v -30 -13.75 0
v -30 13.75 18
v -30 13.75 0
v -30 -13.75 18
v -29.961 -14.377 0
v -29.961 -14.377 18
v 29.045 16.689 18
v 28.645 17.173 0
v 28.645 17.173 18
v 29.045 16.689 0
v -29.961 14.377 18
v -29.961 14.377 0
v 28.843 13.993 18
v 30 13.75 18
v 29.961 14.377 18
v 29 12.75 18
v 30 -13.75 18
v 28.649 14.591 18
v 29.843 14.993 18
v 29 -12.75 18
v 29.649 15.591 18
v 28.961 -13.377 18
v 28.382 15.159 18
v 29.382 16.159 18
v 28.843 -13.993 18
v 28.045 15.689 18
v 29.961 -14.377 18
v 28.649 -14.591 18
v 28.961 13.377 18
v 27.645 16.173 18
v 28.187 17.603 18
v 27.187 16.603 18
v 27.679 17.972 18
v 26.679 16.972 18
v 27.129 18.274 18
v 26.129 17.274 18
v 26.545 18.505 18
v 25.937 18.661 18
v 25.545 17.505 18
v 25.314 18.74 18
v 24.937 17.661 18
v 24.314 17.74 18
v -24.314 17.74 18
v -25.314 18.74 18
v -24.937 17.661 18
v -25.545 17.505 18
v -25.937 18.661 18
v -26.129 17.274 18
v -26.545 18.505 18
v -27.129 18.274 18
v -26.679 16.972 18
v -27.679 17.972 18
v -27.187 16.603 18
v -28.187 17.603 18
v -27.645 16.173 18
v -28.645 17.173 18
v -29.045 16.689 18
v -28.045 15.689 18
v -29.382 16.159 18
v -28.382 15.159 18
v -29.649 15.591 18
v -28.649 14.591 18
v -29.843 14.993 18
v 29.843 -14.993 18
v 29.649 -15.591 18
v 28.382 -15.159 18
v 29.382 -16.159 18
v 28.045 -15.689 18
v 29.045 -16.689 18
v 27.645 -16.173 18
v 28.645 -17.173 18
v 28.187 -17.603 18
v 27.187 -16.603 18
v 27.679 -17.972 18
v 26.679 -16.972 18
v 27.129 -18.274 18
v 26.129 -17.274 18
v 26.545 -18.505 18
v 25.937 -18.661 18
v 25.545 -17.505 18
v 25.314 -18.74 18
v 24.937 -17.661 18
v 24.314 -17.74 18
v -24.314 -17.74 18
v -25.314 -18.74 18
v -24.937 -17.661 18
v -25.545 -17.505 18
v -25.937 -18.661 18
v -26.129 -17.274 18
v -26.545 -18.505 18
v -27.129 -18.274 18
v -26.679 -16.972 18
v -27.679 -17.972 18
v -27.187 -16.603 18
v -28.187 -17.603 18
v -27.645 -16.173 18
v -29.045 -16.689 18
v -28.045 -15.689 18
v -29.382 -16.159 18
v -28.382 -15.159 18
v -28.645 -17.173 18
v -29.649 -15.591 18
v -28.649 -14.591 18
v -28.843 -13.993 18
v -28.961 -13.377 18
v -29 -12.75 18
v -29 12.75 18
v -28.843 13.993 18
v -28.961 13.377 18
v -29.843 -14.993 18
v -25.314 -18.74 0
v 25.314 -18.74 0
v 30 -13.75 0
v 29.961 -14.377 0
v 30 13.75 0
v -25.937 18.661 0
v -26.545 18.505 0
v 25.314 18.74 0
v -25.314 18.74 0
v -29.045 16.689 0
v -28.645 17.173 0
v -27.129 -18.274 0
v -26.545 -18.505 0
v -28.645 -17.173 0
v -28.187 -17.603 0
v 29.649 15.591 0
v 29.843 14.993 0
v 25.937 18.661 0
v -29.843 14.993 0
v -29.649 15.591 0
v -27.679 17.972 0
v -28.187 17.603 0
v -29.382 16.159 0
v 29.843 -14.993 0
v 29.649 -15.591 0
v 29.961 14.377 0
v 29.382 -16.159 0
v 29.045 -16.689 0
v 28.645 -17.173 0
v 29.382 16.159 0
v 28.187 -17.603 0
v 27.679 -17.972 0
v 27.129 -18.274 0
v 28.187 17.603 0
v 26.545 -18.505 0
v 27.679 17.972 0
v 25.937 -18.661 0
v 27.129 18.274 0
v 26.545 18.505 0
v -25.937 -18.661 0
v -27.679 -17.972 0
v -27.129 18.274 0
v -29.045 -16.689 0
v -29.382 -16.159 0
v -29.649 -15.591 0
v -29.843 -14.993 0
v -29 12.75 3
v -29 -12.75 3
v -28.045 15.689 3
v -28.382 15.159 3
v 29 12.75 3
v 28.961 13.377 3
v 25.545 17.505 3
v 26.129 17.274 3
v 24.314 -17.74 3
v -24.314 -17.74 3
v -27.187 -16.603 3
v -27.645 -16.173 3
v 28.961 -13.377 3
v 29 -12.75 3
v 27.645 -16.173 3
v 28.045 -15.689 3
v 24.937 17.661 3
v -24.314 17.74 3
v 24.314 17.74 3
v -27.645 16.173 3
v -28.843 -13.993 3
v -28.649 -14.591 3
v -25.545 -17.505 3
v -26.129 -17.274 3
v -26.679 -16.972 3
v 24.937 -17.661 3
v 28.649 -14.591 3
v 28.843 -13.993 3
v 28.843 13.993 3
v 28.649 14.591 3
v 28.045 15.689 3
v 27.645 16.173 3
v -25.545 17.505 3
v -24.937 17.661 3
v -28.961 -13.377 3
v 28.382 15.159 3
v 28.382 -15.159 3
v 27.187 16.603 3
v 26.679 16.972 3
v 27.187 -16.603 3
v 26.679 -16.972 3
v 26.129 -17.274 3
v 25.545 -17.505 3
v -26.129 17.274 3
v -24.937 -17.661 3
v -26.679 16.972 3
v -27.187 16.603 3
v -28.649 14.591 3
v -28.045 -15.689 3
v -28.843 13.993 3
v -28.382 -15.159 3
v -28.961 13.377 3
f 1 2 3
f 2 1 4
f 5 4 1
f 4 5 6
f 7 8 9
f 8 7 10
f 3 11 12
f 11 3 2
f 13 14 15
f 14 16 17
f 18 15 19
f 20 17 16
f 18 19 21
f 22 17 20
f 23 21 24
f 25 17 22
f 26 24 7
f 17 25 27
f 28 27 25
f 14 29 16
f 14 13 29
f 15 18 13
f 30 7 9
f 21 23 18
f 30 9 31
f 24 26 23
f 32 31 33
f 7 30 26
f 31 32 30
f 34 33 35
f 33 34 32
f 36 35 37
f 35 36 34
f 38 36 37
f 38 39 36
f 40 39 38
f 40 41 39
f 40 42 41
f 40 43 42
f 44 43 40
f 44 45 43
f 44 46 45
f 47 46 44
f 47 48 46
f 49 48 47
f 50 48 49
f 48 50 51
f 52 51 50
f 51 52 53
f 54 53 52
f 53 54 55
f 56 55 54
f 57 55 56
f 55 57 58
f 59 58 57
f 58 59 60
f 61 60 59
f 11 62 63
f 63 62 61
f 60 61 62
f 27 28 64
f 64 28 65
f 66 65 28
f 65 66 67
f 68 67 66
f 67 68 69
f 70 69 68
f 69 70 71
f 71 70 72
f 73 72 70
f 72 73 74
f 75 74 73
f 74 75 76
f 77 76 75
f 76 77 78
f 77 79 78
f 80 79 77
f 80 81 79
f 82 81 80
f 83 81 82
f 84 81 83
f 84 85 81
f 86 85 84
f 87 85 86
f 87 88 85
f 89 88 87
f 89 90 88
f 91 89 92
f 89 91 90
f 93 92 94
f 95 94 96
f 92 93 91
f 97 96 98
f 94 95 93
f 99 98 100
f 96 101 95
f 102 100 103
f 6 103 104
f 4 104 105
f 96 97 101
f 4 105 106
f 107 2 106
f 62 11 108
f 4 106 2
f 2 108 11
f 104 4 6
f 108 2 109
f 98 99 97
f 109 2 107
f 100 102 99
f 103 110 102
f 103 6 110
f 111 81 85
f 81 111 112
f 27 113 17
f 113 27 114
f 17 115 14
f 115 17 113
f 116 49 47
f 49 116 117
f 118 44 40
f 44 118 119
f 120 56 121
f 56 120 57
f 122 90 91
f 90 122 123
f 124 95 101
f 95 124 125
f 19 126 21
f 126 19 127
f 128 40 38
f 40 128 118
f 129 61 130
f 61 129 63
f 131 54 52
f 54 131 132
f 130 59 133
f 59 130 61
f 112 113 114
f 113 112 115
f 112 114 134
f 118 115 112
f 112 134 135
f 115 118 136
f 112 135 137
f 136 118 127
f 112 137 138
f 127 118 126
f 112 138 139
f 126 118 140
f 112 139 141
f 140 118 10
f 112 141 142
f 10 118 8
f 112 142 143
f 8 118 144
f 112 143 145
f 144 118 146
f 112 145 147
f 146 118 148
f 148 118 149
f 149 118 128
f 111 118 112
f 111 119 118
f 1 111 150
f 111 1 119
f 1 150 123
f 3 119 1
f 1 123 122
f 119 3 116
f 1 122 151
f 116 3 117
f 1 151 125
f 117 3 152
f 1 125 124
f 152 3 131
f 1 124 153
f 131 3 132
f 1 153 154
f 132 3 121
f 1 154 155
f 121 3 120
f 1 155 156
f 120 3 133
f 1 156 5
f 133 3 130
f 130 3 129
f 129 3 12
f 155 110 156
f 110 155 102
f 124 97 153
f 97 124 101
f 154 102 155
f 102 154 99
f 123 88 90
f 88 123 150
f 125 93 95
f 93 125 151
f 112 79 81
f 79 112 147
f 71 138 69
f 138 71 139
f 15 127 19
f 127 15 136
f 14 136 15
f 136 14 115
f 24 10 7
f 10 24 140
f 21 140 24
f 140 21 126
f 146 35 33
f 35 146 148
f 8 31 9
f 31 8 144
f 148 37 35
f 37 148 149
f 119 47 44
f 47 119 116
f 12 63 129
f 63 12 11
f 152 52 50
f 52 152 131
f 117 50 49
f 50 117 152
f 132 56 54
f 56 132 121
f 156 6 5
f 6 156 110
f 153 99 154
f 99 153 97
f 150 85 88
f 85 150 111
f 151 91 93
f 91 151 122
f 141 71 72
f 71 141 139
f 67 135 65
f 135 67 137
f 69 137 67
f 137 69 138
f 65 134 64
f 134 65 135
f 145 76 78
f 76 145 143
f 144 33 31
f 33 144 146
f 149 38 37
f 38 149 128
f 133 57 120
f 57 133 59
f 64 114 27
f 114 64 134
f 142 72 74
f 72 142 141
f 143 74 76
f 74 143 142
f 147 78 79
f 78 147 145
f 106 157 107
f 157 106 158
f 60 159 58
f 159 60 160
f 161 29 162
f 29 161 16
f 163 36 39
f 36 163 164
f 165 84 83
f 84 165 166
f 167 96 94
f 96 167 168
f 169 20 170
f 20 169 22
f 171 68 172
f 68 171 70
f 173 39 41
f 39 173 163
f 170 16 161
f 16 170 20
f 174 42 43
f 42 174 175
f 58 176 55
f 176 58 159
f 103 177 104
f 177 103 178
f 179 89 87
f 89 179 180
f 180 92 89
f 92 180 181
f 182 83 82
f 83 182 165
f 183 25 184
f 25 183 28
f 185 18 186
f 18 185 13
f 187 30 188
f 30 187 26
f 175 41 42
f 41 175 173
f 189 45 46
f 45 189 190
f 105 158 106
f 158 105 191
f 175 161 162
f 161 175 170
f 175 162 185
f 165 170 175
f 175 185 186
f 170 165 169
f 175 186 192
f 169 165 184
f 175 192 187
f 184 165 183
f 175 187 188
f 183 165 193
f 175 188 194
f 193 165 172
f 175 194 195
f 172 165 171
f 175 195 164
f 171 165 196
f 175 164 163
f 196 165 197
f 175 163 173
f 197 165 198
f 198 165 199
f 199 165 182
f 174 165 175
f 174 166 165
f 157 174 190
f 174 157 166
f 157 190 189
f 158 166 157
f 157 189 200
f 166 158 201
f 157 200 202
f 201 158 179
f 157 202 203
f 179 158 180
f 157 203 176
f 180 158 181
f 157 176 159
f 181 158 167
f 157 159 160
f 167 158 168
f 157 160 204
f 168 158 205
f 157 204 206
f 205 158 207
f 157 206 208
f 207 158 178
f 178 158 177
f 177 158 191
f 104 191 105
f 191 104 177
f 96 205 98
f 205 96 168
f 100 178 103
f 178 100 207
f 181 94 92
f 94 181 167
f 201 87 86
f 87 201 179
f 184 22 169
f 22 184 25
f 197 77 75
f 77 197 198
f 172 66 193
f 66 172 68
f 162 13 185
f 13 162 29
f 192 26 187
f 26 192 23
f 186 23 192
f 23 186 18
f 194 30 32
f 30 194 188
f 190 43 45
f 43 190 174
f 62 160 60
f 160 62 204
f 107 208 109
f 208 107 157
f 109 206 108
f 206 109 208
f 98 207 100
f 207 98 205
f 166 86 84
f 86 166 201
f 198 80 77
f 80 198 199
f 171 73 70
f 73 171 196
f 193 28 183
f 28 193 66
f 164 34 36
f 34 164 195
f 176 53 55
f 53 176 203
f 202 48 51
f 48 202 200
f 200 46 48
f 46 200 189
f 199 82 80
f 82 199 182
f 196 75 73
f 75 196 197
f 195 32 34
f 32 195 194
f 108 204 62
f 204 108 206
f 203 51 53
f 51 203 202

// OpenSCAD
$fn = 50;


difference() {
	union() {
		hull() {
			translate(v = [-25.0000000000, 13.7500000000, 0]) {
				cylinder(h = 18, r = 5);
			}
			translate(v = [25.0000000000, 13.7500000000, 0]) {
				cylinder(h = 18, r = 5);
			}
			translate(v = [-25.0000000000, -13.7500000000, 0]) {
				cylinder(h = 18, r = 5);
			}
			translate(v = [25.0000000000, -13.7500000000, 0]) {
				cylinder(h = 18, r = 5);
			}
		}
	}
	union() {
		translate(v = [0, 0, 3]) {
			#hull() {
				translate(v = [-24.0000000000, 12.7500000000, 0]) {
					cylinder(h = 15, r = 5);
				}
				translate(v = [24.0000000000, 12.7500000000, 0]) {
					cylinder(h = 15, r = 5);
				}
				translate(v = [-24.0000000000, -12.7500000000, 0]) {
					cylinder(h = 15, r = 5);
				}
				translate(v = [24.0000000000, -12.7500000000, 0]) {
					cylinder(h = 15, r = 5);
				}
			}
		}
	}
}
